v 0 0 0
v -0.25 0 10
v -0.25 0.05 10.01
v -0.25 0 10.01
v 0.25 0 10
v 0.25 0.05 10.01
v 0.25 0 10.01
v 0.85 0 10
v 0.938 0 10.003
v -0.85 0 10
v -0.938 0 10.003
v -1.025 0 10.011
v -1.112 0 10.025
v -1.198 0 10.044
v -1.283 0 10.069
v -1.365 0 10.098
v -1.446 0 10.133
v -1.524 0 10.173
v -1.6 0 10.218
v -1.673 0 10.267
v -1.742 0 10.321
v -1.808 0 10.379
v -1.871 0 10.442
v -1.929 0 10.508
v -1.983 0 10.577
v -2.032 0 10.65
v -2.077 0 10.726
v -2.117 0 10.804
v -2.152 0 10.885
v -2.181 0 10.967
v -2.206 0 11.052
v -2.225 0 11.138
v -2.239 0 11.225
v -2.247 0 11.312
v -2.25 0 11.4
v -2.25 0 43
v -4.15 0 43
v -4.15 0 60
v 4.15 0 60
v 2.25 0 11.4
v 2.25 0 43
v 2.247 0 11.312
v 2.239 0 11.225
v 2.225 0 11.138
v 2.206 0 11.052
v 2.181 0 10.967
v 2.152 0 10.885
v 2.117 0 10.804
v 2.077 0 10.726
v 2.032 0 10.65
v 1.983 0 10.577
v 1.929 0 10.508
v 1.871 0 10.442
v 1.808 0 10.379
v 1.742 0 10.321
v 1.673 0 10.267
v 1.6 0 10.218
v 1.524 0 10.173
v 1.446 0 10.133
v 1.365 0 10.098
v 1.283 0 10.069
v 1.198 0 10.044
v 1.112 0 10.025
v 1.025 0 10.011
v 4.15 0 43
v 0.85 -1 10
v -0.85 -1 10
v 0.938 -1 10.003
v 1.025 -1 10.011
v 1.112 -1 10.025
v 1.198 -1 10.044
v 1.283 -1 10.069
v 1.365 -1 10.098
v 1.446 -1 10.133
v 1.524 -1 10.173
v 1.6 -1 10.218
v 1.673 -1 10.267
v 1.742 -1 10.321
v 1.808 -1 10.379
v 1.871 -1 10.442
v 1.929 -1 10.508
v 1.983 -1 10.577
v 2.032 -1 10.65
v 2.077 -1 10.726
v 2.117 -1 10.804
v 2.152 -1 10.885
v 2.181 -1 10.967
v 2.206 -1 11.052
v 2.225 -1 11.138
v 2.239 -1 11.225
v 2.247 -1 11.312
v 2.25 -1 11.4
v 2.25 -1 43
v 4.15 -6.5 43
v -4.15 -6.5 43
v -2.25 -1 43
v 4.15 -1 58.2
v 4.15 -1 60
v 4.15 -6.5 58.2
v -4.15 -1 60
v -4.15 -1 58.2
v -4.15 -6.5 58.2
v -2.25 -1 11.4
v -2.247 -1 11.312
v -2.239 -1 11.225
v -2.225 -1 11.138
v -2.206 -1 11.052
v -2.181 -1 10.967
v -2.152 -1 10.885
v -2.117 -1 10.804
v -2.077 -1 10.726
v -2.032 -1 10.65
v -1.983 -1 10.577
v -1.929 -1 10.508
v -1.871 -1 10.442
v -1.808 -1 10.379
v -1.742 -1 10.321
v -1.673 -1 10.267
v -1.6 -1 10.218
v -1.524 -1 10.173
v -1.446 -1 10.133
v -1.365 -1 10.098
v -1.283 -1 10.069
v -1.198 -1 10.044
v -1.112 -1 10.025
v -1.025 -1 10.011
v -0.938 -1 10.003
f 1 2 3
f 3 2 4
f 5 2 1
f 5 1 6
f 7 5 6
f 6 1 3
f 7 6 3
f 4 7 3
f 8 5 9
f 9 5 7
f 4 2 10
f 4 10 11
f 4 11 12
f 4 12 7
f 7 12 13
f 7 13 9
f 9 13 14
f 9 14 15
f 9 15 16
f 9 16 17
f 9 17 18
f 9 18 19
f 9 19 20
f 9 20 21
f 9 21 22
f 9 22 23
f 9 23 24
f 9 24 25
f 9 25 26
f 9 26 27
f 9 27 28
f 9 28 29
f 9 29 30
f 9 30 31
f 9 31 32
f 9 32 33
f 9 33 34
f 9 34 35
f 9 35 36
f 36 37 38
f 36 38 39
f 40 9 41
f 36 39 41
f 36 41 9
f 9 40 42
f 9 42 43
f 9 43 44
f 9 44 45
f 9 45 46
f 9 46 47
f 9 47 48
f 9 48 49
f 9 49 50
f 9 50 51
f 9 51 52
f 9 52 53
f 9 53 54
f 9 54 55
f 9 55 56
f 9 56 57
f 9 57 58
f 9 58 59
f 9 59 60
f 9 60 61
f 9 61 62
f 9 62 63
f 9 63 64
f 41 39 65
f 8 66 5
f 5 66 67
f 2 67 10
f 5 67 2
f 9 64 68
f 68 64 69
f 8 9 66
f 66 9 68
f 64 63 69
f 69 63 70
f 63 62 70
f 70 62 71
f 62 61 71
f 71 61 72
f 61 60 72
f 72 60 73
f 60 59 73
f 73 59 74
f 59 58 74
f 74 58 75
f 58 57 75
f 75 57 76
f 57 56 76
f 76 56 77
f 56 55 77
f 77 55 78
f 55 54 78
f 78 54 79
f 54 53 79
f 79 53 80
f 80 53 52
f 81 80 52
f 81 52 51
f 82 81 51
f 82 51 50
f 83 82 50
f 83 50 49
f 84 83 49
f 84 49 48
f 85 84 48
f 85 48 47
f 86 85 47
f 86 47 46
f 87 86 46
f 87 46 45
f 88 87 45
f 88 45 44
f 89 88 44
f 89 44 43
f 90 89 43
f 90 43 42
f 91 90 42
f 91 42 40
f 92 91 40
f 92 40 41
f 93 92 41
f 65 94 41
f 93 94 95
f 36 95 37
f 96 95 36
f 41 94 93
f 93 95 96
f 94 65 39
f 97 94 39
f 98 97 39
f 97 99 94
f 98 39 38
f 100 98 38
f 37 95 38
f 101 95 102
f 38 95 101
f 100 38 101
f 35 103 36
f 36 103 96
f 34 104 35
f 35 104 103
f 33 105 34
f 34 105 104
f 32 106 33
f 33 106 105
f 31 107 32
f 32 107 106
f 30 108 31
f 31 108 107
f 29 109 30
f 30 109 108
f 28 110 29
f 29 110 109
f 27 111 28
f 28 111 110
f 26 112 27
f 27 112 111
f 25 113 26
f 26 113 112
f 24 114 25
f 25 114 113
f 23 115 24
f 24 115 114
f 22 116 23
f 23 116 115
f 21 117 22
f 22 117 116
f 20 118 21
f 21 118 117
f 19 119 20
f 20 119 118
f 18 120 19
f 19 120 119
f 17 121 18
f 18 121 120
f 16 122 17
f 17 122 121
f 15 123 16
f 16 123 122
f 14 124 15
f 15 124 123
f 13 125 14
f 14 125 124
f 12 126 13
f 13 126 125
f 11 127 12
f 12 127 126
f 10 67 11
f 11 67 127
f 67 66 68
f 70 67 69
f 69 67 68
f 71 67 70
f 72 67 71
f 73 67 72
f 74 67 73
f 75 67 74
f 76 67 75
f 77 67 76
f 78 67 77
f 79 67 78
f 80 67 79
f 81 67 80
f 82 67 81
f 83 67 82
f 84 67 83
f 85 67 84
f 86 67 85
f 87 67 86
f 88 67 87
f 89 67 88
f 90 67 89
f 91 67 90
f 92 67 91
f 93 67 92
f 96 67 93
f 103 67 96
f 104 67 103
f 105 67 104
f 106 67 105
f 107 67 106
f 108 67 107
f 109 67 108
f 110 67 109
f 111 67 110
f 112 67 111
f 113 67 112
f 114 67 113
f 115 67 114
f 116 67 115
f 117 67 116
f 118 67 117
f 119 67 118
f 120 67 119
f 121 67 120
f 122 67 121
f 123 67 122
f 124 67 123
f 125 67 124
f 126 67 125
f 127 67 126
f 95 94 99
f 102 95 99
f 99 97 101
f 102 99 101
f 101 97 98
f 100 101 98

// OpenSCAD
rotate([90,-90,0]){
union(){
	// silicon
	polyhedron(points=[[0,0,0],[10.01,-0.25,0],[10.01,0.25,0],[10.01,0.25,-0.05],[10.01,-0.25,-0.05]],triangles=[[1,0,2],[3,0,4],[0,1,4],[2,0,3],[2,3,1],[4,1,3]]);
	
	// pcb (shaft)
	translate([10,-2.25,0]){
		difference(){
			cube(size=[50,4.5,1]); // pcb (shaft)
			difference(){
				translate([-1.4,4.5-1.4,-1]) cube(size=[2.8,2.8,3]);
				translate([1.4,4.5-1.4,-2]) cylinder(h=5,r=1.4,$fn=100);
			}
			difference(){
				translate([-1.4,-1.4,-1]) cube(size=[2.8,2.8,3]);
				translate([1.4,1.4,-2]) cylinder(h=5,r=1.4,$fn=100);
			}
		}
	}
	
	// pcb (near samtec)
	translate([43,-4.15,0]) cube(size=[17,8.3,1]);
	
	// samtec
	translate([43,-4.15,1]) cube(size=[15.2,8.3,5.5]);
}
};
